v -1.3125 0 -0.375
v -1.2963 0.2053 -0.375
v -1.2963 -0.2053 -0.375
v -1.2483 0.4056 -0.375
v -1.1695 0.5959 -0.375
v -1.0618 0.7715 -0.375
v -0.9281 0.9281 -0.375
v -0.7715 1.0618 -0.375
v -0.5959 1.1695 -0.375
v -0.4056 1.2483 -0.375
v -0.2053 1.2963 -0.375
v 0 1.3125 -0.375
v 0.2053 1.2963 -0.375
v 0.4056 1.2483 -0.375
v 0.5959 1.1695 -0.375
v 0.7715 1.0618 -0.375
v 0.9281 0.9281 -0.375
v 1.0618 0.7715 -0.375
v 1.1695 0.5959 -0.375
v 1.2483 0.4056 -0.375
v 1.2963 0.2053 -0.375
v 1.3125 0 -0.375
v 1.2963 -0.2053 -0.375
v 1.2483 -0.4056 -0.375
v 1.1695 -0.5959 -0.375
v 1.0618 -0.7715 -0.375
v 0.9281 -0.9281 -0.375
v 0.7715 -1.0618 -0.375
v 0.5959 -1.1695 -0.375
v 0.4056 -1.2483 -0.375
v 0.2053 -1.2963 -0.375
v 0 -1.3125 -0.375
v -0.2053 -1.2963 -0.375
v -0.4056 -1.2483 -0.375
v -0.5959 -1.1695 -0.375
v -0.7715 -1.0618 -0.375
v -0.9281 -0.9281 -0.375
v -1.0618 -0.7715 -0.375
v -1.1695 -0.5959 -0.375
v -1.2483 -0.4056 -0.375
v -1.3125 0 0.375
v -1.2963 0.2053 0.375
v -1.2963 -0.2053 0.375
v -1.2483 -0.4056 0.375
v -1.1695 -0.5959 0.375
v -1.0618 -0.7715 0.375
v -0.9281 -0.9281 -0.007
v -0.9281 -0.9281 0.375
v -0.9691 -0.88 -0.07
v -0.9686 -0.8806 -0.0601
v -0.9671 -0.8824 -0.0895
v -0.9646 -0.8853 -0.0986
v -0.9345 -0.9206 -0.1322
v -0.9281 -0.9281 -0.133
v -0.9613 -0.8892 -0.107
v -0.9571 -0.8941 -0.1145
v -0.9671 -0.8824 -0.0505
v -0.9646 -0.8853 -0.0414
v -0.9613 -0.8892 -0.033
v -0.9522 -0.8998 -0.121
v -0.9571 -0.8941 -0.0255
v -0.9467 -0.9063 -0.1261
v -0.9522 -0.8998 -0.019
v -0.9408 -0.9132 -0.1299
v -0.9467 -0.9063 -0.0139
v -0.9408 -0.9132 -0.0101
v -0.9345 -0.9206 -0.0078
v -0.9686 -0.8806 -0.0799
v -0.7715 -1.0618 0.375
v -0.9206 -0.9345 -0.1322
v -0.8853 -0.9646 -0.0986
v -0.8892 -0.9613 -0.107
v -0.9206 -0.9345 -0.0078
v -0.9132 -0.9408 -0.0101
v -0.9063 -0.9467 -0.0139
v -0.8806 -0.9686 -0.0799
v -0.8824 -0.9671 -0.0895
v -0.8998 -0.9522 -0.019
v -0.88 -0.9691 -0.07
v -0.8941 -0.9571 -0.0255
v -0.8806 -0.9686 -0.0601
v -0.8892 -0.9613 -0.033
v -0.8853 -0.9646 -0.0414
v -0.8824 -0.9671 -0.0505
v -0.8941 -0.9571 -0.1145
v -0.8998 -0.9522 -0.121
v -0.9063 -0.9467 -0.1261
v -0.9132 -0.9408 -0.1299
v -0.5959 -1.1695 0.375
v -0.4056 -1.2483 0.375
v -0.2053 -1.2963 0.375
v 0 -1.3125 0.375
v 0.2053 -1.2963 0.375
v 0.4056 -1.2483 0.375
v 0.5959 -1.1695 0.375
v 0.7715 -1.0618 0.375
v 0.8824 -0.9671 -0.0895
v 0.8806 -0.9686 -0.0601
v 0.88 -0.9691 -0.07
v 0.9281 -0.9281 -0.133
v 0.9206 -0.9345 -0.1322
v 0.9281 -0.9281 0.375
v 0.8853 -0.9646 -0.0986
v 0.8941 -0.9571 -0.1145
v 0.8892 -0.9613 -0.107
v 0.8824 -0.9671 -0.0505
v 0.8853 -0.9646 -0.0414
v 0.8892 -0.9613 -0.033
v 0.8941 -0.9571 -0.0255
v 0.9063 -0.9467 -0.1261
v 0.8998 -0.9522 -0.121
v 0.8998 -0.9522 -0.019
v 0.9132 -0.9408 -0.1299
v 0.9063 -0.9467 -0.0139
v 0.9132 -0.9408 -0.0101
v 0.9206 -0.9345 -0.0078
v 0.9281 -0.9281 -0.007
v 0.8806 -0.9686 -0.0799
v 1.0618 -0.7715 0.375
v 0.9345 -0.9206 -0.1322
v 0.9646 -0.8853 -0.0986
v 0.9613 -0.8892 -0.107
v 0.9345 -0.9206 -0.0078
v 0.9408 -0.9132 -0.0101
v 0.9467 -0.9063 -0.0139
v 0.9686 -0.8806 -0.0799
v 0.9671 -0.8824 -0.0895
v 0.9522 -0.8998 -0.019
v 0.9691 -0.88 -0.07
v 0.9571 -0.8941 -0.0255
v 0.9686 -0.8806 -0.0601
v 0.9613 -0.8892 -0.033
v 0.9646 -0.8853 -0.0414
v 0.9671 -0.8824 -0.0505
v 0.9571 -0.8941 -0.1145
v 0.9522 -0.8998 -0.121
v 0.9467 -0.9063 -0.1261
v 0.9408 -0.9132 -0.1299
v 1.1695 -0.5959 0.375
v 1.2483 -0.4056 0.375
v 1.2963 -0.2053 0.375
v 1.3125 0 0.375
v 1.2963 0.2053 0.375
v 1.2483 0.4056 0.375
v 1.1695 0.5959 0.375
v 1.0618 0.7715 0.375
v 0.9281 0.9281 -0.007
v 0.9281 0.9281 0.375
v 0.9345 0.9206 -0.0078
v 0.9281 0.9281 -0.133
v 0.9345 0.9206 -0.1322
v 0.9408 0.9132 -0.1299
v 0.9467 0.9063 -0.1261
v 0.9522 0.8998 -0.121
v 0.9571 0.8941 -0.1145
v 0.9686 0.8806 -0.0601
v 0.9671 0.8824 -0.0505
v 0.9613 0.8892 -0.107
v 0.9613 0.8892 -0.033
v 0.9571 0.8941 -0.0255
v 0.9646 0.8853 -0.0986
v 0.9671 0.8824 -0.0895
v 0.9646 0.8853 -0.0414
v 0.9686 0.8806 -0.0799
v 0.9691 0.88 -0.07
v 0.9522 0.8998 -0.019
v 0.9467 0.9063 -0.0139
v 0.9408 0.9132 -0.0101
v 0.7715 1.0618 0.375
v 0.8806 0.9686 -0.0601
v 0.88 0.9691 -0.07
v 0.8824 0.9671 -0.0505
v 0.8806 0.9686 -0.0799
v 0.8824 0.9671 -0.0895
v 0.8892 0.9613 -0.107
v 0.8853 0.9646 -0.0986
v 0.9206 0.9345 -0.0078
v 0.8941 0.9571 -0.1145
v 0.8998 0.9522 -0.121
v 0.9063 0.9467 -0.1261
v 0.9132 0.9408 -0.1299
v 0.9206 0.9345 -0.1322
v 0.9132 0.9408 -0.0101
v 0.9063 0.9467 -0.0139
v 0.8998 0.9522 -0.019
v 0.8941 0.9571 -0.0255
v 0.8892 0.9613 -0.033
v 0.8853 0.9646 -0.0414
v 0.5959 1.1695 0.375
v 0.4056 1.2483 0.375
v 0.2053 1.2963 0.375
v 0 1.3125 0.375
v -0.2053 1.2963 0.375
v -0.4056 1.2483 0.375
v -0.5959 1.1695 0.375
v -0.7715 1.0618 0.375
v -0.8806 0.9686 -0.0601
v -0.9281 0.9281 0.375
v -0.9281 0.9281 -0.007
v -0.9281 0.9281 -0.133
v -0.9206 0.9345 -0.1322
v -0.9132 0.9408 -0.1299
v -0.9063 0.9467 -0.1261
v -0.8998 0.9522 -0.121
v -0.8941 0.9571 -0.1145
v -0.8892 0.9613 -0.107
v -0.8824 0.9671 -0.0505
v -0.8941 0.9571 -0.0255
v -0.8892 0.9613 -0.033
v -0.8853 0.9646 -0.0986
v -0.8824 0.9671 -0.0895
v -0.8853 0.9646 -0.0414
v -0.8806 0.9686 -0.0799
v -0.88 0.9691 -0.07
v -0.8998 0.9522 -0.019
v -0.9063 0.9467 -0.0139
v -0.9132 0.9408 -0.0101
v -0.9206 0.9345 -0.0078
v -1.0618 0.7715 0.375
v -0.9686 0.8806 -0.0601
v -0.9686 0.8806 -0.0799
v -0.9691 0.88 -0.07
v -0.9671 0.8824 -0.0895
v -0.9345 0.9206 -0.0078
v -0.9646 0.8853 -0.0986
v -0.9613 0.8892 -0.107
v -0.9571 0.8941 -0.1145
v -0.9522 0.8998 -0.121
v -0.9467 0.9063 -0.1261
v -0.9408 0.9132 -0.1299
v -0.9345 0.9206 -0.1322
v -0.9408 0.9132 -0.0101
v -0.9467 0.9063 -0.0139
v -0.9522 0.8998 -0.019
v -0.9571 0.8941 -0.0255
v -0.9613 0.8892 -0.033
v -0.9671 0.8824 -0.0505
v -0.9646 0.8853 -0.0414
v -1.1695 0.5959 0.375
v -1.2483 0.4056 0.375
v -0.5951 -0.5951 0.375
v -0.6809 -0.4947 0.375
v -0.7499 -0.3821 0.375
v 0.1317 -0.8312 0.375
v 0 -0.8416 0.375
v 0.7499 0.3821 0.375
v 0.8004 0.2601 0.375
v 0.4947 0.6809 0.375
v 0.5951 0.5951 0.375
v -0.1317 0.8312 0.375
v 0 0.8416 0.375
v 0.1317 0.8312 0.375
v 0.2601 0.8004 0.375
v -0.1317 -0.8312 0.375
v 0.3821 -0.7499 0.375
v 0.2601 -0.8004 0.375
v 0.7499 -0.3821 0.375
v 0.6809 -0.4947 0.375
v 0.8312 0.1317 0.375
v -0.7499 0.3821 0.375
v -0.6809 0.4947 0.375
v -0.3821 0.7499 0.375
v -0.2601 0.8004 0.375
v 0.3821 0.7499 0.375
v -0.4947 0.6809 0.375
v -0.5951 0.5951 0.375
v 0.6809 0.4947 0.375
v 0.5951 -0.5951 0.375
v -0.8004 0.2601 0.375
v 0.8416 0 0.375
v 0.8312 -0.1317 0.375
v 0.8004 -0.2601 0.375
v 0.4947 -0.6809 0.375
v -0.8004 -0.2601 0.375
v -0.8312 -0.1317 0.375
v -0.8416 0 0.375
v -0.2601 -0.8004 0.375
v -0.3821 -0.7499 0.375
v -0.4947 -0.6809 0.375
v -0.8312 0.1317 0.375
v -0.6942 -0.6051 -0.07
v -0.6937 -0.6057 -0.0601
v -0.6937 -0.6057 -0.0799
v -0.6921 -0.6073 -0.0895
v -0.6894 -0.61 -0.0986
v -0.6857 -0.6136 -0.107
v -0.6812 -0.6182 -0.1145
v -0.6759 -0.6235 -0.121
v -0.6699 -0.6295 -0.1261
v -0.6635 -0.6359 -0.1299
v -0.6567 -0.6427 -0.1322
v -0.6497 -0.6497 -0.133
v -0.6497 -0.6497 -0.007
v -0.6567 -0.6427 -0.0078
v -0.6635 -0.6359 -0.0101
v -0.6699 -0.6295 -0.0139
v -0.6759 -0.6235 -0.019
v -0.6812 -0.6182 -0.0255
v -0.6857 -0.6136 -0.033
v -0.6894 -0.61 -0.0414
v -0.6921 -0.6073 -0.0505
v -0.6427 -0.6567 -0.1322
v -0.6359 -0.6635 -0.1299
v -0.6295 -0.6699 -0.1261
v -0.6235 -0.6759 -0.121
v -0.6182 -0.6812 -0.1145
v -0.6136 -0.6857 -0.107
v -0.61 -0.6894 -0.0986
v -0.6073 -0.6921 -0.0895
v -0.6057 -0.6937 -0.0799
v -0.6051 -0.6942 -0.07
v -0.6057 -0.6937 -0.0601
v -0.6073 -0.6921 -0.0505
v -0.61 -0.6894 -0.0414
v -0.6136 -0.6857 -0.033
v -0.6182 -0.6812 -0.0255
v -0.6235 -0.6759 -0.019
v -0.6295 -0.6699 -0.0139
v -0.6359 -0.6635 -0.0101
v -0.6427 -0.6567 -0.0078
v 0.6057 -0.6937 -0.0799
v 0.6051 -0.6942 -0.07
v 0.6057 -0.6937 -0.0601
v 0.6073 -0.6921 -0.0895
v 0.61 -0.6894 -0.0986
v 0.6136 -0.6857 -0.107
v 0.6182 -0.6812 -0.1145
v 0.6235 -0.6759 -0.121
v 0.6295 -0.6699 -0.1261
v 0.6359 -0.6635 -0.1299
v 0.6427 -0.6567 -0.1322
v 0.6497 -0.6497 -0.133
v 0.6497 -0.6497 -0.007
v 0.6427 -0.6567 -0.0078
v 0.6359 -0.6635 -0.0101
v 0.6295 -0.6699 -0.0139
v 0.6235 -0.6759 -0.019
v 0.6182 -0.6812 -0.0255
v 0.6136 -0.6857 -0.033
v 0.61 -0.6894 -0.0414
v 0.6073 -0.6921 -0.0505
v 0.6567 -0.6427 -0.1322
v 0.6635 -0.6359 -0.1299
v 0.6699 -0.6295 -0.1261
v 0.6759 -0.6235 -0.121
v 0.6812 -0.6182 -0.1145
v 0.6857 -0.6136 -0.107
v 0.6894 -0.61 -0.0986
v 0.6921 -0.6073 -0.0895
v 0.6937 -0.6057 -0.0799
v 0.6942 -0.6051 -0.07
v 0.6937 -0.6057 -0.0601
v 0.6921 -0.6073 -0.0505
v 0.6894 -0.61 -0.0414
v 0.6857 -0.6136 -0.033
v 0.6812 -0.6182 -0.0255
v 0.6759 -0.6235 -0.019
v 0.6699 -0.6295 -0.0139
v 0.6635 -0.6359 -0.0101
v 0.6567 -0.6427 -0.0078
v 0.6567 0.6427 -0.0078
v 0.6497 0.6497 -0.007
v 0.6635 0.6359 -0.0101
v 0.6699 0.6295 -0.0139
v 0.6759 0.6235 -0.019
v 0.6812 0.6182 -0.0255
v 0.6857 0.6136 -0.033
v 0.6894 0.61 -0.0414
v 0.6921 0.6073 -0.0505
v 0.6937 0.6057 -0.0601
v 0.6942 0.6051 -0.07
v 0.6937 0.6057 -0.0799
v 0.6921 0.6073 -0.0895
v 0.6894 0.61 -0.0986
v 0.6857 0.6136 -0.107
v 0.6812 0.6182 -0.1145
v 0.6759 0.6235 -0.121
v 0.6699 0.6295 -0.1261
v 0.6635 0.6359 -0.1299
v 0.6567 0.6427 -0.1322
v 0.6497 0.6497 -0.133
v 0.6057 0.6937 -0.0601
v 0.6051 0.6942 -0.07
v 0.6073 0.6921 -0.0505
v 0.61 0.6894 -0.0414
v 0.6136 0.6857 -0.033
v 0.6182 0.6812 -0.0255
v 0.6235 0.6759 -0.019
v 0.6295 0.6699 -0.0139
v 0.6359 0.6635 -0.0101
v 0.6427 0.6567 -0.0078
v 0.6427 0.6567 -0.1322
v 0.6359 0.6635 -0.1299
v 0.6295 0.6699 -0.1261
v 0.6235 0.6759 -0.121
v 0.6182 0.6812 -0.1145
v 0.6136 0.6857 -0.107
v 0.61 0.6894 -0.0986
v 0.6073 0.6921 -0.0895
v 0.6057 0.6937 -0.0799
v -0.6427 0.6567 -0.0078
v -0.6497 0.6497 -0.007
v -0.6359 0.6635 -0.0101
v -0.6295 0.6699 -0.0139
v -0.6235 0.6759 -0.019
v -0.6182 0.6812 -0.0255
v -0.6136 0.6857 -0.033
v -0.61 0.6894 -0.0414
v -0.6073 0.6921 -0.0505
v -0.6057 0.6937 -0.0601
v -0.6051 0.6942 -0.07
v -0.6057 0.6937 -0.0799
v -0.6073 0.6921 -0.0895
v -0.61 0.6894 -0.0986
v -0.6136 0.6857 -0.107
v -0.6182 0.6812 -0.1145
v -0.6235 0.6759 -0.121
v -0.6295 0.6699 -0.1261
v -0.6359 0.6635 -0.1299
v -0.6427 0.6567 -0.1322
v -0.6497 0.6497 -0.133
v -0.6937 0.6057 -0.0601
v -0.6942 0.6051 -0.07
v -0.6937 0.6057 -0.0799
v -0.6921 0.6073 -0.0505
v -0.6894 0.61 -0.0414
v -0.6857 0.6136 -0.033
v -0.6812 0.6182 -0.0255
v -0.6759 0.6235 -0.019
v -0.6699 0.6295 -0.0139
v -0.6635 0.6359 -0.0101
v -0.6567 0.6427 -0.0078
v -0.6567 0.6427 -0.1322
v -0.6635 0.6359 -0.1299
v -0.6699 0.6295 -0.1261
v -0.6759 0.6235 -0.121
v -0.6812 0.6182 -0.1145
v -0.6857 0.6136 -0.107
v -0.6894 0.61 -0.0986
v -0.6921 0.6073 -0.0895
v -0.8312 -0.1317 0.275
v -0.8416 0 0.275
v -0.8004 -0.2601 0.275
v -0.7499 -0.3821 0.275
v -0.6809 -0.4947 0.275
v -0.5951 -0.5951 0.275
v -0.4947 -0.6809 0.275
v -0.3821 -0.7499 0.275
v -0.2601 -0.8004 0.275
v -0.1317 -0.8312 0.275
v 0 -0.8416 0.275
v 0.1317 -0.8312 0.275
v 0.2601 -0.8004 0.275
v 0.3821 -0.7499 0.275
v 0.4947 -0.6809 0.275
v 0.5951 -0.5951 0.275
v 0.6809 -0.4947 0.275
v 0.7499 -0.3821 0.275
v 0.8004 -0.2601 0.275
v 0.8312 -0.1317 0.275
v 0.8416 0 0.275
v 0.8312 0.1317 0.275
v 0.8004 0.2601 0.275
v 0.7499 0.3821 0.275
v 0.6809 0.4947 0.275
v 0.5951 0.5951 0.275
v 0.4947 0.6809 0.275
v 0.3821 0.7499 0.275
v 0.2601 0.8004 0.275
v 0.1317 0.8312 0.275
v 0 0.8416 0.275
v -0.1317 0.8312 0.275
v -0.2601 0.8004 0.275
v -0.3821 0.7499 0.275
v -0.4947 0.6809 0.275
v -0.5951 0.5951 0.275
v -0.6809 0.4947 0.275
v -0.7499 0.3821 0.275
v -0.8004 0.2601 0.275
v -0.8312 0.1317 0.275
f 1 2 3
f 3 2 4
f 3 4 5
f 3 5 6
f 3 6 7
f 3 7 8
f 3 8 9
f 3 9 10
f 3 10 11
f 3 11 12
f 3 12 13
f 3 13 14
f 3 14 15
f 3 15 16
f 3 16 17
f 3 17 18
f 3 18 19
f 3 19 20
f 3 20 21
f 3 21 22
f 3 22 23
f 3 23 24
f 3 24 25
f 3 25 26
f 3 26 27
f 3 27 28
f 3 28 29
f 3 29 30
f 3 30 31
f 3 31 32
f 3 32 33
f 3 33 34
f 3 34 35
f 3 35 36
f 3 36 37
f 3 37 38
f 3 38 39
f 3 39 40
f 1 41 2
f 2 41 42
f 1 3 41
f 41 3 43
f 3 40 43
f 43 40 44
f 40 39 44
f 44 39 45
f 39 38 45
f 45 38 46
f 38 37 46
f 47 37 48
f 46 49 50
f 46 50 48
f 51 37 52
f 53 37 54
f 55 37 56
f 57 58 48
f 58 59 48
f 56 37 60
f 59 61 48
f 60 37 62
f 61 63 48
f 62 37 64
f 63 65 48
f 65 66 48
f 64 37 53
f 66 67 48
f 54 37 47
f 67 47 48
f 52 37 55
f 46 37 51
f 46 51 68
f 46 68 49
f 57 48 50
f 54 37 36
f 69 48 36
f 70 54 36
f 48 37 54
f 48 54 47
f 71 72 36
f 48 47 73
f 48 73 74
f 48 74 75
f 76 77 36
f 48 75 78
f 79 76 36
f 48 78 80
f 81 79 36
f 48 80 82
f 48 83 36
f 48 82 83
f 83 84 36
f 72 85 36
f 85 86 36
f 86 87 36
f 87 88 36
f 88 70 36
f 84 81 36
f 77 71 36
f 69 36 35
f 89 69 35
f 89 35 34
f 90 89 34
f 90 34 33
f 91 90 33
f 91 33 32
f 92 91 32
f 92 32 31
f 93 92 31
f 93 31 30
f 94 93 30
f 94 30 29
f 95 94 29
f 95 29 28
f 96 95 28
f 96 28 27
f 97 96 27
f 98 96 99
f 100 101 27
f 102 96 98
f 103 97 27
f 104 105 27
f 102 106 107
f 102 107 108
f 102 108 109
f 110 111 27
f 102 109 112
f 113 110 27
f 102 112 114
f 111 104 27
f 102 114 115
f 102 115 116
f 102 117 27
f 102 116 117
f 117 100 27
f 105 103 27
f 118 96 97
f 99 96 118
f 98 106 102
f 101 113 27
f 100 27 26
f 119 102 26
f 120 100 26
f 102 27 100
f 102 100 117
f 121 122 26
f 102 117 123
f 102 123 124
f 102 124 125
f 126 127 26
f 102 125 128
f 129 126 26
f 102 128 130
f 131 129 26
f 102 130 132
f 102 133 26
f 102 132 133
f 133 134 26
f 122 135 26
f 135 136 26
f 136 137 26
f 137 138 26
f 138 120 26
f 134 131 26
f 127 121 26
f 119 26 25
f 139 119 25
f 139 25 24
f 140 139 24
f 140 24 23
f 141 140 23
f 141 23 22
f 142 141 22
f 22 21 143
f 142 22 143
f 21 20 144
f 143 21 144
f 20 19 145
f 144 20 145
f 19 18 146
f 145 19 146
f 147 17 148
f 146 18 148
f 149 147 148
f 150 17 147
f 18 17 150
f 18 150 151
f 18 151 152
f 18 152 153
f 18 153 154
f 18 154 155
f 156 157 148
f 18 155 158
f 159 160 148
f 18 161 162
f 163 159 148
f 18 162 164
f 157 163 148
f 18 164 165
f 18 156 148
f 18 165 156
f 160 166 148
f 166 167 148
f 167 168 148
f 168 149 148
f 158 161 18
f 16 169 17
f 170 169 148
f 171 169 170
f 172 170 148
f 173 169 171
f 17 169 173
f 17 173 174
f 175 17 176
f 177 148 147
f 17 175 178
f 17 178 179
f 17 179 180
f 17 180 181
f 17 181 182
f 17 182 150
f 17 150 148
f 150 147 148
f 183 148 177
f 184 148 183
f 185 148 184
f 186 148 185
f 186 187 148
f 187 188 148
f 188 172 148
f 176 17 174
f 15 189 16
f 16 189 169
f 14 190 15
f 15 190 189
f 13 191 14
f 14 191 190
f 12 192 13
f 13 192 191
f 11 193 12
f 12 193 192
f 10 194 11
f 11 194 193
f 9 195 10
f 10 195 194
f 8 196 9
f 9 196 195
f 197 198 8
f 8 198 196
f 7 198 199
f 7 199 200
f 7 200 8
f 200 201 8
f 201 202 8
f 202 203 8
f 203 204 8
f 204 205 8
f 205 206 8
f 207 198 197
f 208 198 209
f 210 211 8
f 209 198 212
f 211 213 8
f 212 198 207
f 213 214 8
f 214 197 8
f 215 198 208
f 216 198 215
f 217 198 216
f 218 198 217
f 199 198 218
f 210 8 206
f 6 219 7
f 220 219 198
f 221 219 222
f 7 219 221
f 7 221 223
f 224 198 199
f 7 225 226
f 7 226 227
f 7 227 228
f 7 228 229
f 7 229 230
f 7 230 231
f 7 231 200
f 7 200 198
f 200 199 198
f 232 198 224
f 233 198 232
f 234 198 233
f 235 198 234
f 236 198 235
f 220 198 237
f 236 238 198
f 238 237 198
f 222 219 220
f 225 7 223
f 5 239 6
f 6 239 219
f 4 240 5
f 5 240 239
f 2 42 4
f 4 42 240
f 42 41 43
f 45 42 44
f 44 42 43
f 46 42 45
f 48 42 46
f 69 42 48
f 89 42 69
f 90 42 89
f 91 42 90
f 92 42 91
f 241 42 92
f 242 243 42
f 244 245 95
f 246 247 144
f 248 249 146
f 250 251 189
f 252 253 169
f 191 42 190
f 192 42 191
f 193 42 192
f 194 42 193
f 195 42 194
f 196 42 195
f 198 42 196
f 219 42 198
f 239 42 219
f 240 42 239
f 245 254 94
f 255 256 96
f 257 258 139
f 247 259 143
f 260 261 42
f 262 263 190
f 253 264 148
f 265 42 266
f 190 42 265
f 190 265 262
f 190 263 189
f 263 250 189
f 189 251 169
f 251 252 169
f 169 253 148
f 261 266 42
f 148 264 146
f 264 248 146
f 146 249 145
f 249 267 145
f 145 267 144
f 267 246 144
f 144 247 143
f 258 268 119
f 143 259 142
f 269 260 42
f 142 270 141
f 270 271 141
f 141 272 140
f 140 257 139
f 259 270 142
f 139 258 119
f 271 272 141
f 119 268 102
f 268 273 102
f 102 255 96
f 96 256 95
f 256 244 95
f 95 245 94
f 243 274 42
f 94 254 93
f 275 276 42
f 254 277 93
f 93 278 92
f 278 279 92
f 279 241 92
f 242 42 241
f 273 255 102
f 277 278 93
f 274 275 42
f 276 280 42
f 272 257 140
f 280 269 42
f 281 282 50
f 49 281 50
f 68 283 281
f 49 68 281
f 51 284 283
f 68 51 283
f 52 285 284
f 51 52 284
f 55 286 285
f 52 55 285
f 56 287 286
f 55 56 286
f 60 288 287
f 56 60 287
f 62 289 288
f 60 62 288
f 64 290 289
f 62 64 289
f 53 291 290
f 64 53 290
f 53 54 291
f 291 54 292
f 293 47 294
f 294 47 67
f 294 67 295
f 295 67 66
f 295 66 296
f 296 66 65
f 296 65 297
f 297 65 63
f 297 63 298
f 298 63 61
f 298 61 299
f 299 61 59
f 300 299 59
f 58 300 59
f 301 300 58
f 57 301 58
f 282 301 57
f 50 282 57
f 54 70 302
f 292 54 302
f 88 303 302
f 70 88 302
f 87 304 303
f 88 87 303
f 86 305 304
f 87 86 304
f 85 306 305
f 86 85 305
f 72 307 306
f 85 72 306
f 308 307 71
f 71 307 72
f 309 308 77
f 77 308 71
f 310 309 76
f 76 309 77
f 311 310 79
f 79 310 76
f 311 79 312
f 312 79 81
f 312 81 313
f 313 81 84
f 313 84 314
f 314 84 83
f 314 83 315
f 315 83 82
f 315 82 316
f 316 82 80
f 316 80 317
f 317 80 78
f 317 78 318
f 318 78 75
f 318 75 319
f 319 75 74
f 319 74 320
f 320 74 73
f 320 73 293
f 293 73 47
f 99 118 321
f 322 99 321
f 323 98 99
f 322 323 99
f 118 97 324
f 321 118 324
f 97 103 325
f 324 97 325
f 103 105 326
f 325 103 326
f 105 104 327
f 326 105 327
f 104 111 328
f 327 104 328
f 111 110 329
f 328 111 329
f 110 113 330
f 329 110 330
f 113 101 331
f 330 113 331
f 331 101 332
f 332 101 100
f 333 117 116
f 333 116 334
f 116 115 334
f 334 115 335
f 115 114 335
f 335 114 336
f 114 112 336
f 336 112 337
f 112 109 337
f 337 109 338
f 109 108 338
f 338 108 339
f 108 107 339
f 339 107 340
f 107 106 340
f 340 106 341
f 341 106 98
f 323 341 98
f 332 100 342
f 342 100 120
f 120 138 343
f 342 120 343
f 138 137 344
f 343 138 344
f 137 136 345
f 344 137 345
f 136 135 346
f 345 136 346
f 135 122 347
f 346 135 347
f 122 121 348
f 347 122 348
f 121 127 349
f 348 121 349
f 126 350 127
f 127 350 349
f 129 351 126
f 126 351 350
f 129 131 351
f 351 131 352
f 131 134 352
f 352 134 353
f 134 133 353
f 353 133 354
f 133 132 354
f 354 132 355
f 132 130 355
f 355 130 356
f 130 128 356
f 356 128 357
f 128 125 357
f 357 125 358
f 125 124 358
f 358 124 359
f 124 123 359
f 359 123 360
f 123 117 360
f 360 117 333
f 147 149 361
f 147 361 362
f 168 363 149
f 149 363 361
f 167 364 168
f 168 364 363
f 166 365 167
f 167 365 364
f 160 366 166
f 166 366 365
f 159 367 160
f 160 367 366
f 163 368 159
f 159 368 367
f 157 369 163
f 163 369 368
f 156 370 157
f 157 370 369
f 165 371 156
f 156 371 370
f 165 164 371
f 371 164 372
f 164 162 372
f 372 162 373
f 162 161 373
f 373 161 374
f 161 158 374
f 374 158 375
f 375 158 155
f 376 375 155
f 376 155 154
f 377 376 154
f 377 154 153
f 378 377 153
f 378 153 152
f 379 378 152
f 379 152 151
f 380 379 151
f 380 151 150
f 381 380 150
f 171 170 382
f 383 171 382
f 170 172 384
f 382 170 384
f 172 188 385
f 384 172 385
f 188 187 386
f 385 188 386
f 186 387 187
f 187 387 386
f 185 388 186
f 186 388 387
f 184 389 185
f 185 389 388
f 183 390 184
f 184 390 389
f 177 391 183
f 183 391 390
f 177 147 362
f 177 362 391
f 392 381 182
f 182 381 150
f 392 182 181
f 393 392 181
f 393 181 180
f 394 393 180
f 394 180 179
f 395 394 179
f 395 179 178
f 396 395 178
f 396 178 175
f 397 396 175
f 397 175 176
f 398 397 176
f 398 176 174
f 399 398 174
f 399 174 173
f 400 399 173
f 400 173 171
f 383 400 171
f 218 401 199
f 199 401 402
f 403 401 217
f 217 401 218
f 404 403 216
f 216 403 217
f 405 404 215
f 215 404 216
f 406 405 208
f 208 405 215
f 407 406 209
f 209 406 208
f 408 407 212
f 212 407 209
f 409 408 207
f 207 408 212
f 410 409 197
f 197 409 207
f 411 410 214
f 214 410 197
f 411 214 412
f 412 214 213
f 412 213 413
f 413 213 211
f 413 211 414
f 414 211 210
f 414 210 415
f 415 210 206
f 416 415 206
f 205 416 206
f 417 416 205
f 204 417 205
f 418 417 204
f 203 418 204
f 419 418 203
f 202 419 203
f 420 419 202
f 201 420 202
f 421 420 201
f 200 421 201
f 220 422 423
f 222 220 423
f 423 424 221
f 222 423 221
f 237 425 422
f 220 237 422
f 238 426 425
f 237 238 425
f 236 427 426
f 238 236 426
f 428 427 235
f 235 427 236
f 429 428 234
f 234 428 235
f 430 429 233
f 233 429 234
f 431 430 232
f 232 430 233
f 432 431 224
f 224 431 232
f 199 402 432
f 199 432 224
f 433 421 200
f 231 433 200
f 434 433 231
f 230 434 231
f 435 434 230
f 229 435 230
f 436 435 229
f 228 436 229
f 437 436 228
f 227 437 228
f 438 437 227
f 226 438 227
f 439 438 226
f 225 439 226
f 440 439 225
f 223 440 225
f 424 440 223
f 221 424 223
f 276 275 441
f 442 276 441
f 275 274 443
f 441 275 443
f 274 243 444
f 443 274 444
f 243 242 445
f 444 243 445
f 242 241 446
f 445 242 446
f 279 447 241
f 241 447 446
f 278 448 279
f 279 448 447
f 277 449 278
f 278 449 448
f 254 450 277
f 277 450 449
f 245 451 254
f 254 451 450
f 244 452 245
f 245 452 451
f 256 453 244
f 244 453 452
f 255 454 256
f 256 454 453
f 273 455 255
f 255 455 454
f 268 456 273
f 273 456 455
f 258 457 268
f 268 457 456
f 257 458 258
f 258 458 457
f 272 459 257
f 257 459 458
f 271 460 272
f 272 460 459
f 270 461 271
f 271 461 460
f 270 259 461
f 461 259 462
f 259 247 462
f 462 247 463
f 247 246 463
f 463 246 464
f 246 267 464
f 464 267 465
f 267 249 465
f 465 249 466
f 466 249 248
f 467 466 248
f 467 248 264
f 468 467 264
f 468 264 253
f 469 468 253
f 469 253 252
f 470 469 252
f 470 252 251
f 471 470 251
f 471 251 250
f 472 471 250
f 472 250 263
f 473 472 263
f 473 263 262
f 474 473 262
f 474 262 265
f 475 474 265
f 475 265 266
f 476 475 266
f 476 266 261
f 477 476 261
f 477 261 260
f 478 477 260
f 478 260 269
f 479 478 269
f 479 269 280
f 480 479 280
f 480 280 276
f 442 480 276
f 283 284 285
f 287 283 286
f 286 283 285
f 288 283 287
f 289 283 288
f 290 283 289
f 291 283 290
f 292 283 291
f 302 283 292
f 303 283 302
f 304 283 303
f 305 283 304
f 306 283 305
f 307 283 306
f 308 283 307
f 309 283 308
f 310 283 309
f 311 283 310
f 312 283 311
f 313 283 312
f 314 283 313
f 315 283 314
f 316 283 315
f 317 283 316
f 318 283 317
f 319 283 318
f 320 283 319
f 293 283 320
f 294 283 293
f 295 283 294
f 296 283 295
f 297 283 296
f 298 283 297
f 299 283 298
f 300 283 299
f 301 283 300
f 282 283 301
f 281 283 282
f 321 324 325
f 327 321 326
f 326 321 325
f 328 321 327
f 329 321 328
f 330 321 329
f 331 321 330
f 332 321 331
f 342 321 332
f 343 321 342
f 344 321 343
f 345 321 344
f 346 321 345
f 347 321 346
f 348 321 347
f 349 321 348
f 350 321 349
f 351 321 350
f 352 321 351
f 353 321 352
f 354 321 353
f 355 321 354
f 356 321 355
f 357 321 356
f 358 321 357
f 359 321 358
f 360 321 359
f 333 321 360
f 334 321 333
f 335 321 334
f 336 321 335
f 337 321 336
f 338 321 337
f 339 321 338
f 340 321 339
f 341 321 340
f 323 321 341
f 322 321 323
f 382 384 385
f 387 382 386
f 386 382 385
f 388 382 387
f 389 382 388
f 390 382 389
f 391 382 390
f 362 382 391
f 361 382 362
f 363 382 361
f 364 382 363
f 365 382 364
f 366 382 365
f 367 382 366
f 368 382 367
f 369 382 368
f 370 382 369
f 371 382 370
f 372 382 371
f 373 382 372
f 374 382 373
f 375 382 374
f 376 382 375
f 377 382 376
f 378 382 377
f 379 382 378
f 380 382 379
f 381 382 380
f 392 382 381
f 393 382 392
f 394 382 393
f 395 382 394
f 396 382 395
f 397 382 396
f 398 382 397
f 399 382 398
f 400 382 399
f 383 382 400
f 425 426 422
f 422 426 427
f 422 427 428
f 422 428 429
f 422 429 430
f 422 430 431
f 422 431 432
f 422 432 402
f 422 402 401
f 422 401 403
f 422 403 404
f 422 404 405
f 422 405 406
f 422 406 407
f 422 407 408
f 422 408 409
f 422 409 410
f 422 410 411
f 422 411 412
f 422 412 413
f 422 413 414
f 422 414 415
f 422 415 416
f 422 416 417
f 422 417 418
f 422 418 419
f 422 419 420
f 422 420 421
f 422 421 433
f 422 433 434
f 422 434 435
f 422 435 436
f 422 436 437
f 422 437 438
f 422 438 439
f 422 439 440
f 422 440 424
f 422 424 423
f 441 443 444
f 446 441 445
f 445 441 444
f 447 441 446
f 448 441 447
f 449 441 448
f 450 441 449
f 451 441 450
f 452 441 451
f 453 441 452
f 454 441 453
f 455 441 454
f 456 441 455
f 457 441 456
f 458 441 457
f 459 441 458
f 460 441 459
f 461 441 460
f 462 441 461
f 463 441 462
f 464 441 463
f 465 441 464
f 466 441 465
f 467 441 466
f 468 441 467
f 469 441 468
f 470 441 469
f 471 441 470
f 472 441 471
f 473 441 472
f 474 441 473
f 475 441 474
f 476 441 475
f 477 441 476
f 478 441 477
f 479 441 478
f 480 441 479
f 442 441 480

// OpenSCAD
// file: mast.scad
/*
 * Antenna Rotator 16 kg-m
 * Copyright 2012 John Pritchard
 *
 * This program is free software: you can redistribute it and/or modify
 * it under the terms of the GNU General Public License as published by
 * the Free Software Foundation, either version 3 of the License, or
 * (at your option) any later version.
 *
 * This program is distributed in the hope that it will be useful,
 * but WITHOUT ANY WARRANTY; without even the implied warranty of
 * MERCHANTABILITY or FITNESS FOR A PARTICULAR PURPOSE.  See the
 * GNU General Public License for more details.
 *
 * You should have received a copy of the GNU General Public License
 * along with this program.  If not, see <http://www.gnu.org/licenses/>.
 */

/*
 * units = inches
 */


mast_bearing_height = 0.42;

/*
 * LM67048 Tapered Bearing and L44610 Cup: 1.25 ID, 1.98 OD
 */
module mast_bearing(){
	difference(){
		cylinder(r = 0.990, h = mast_bearing_height, center = true, $fn = resolution);
		cylinder(r = 0.625, h = mast_bearing_height, center = true, $fn = resolution);
	}
}

mast_block_height = 0.75;

/*
 * Turn 2" Round 6061 to (2.0-mechtol) OD
 */
module mast_block(){
	/*
	 * TODO 
	 */
	cylinder(r = (2.0-mechtol)/2, h = mast_block_height, center = true, $fn = resolution);
}
// file: head.scad
/*
 * Antenna Rotator 16 kg-m
 * Copyright 2012 John Pritchard
 *
 * This program is free software: you can redistribute it and/or modify
 * it under the terms of the GNU General Public License as published by
 * the Free Software Foundation, either version 3 of the License, or
 * (at your option) any later version.
 *
 * This program is distributed in the hope that it will be useful,
 * but WITHOUT ANY WARRANTY; without even the implied warranty of
 * MERCHANTABILITY or FITNESS FOR A PARTICULAR PURPOSE.  See the
 * GNU General Public License for more details.
 *
 * You should have received a copy of the GNU General Public License
 * along with this program.  If not, see <http://www.gnu.org/licenses/>.
 */

/*
 * units = inches
 */

head_bearing_height = 0.5625;

head_block_od = 2.625;

head_block_height = 0.75;

head_block_gearmotor_clearance = 0.1;

head_bearing_spacer_height = 1.5;

head_tube_od = 3.0;

head_tube_id = 2.625;

head_tube_height = (7.87+head_block_height-head_block_gearmotor_clearance);

head_tube_offset = -((head_tube_height/2)-((head_block_height)+(head_bearing_spacer_height/2)+(head_bearing_height)+(2*mechtol)));

head_block_support_offset = -((head_block_height/2)+(gearmotor_body_height-(2*head_block_gearmotor_clearance))+(head_block_height)+(head_bearing_spacer_height/2)+(head_bearing_height)+(2*mechtol));

head_block_mount_offset = -((head_block_height/2)+(head_bearing_spacer_height/2)+(head_bearing_height)+(2*mechtol));

head_bearing_offset = ((head_bearing_spacer_height/2)+(head_bearing_height/2)+mechtol);

head_block_shaft_offset = ((head_block_height/2)+(head_bearing_spacer_height/2)+(head_bearing_height)+(2*mechtol));

echo("head tube height",head_tube_height);
echo("head tube offset",head_tube_offset);
echo("head block support offset",head_block_support_offset);
echo("head block mount offset",head_block_mount_offset);
echo("head bearing offset",head_bearing_offset);
echo("head block shaft offset",head_block_shaft_offset);

/*
 * R24-2RS Radial Bearing: 1.5 ID, 2.625 OD, 0.5625 H
 */
module head_bearing(){
	difference(){
		cylinder(r = (2.625/2), h = head_bearing_height, center = true, $fn = resolution);
		cylinder(r = (1.5/2), h = head_bearing_height, center = true, $fn = resolution);
	}
}

/*
 * Turn 3" Round 6061 to 2.625 OD
 */
module head_block(){

	cylinder(r = head_block_od/2, h = head_block_height, center = true, $fn = resolution);
}
/*
 * Secondary (outboard) motor mount
 */
module head_block_support(){
	difference(){
		head_block();
		translate([0,0,+(head_block_height/2)-(head_block_gearmotor_clearance/2)]){
			/*
			 * gearmotor body clearance
			 */
			gearmotor_body((gearmotor_body_radius+mechtol), head_block_gearmotor_clearance);
		}
		head_block_mount_taps();
	}
}
/*
 * Primary (inboard) motor mount
 */
module head_block_mount(){
	difference(){
		head_block();
		gearmotor_mount(head_block_height);
		translate([0,0,-(head_block_height/2)+(head_block_gearmotor_clearance/2)]){
			/*
			 * gearmotor body clearance: maximize mount strength
			 */
			gearmotor_body((gearmotor_body_radius+mechtol), head_block_gearmotor_clearance);
		}
		translate([0,0,+(head_block_height/2)-0.125]){
			/*
			 * Embedded axle clearance
			 */
			cylinder(r = (1.5+(2*mechtol))/2, h = 0.25, center = true, $fn = resolution);
			/*
			 * Mount bolt head clearance 
			 * M4 ALLEN DIN 912
			 * Head Height 4 mm, 0.1575 in; Diameter 7 mm, 0.2756 in
			 *
			 * Flat Washer
			 * Diameter 9mm, 0.3543 in; Height = 0.8 mm, 0.0315 in
			 */
			fastener_m4_mount_tapped(depth = 0.25, expansion = 0.1771);
		}
		translate([0,0,+(head_block_height/2)-0.25-(0.189/2)]){
			/*
			 * Mount bolt head sink 
			 * M4 ALLEN DIN 912 Head + Flat Washer (4 + 0.8 mm)
			 */
			fastener_m4_mount_tapped(depth = 0.189, expansion = 0.1771);
		}
		head_block_mount_taps();
	}
}
/*
 * M4 taps with 10 mm depth
 * Minimal interior wall at gearmotor body clearance (diagonal)
 */
module head_block_mount_taps(depth = 0.3937){

	translate([0,0,-0.07]){

		fastener_m4_round_taps( head_block_od, depth);
	}
}
module head_block_mount_countersinks(){

	translate([0,0,-0.07]){

		fastener_m4_tube_countersinks( head_tube_od);
	}
}
/*
 * M4 taps with 8 mm depth
 * Minimal interior wall at gearmotor body clearance (diagonal)
 */
module head_block_shaft_taps(depth = 0.3149){

	fastener_m4_round_taps( head_block_od, depth);
}
module head_block_shaft_countersinks(){

    fastener_m4_tube_countersinks( head_tube_od);
}
/*
 * TR-023 Hydraulic Rod T-Seal Buna-N
 * 1.5" ID x 1.875" OD x 0.28" H
 */
module head_block_shaft_tseal(){

	translate([0,0,(head_block_height-0.28+mechtol)/2]){

		cylinder(r = 0.9375, h = 0.28, center = true, $fn = resolution);
	}
}
module head_block_shaft(){

	difference(){
		head_block();
		cylinder(r = (1.5+mechtol)/2, h = head_block_height, center = true, $fn = resolution);
		head_block_shaft_taps();
		head_block_shaft_tseal();
	}
}
/*
 * Tube 6061 3.0 OD, 2.625 ID, Wall 0.1875 in
 */
module head_tube(){
	difference(){

		translate([0,0,head_tube_offset]){
			difference(){
				cylinder(r = (head_tube_od/2), h = head_tube_height, center = true, $fn = resolution);
				cylinder(r = (head_tube_id/2), h = head_tube_height, center = true, $fn = resolution);
			}
		}

		head_tube_countersinks();
	}
}
module head_tube_countersinks(){

	translate([0,0,head_block_support_offset]){
		head_block_mount_countersinks();
	}
	translate([0,0,head_block_mount_offset]){
		head_block_mount_countersinks();
	}
	translate([0,0,head_block_shaft_offset]){
		head_block_shaft_countersinks();
	}
}
/*
 * Tube 6061 2.75 OD, 0.25 Wall turned to Head Block OD 2.625 in
 */
module head_bearing_spacer(){
	difference(){
		cylinder(r = head_block_od/2, h = head_bearing_spacer_height, center = true, $fn = resolution);
		cylinder(r = (2.25/2), h = head_bearing_spacer_height, center = true, $fn = resolution);
	}
}
/*
 * gearmotor in head -- vertical rotator
 */
module head_motor(){
	assign(offset = -((gearmotor_body_height/2)+(head_block_height-head_block_gearmotor_clearance)+(head_bearing_spacer_height/2)+(head_bearing_height)+(3*mechtol))){
		echo("gearmotor offset",offset);
		translate([0,0,offset]){
			gearmotor();
		}
	}
}
/*
 * Blocks, Bearings, and Spacer
 */
module head_internal(){

	translate([0,0,head_block_support_offset]){
		head_block_support();
	}
	translate([0,0,head_block_mount_offset]){
		head_block_mount();
	}
	translate([0,0,-head_bearing_offset]){
		head_bearing();
	}
	translate([0,0,0]){
		head_bearing_spacer();
	}
	translate([0,0,head_bearing_offset]){
		head_bearing();
	}
	translate([0,0,head_block_shaft_offset]){
		head_block_shaft();
	}
}
module head(){
	head_internal();
    % head_motor();
	head_tube();
}
// file: gearmotor.scad
/*
 * Antenna Rotator 16 kg-m
 * Copyright 2012 John Pritchard
 *
 * This program is free software: you can redistribute it and/or modify
 * it under the terms of the GNU General Public License as published by
 * the Free Software Foundation, either version 3 of the License, or
 * (at your option) any later version.
 *
 * This program is distributed in the hope that it will be useful,
 * but WITHOUT ANY WARRANTY; without even the implied warranty of
 * MERCHANTABILITY or FITNESS FOR A PARTICULAR PURPOSE.  See the
 * GNU General Public License for more details.
 *
 * You should have received a copy of the GNU General Public License
 * along with this program.  If not, see <http://www.gnu.org/licenses/>.
 */

/*
 * units = inches
 * 
 * External constants
 * 
 * resolution: 10 is low, 100 is high
 *
 * mechtol: mechanical tolerance
 */

gearmotor_body_radius = 0.8366;
gearmotor_body_height = 3.819;

/*
 * Brushless motor with planetary gearhead, 
 * drive control, position encoder, brake:
 * 24V, 2A, 500:1, 15.6 kg-m, 8 rpm;
 * http://www.aliexpress.com/store/product/explosion-proof-DC-servo-Brushless-gear-motor-micro-planetary-gearbox-gear-reducer-156kg-cm-hight-torque/506137_516569606.html
 */
module gearmotor(){
	difference(){
		union(){

			gearmotor_body();
			/*
			 * Mount plane from center
			 */
			translate([0,0,1.9095]){

				gearmotor_mount_shoulder(gearmotor_mount_shoulder_height,(gearmotor_mount_shoulder_height/2));

				gearmotor_output_shaft();
			}
			/*
			 * Electrical connector, a space filling model
			 * for the bounds [20,2.75,6] mm
			 */
			translate([0,-gearmotor_body_radius,-1.339]){
				cube(size = [0.7874,0.2166,0.2362], center = true);
			}
		}
		fastener_m4_mount_tapped(0.5,1.9095);
	}
}
/*
 * Main body volume
 */
module gearmotor_body(radius = gearmotor_body_radius, height = gearmotor_body_height){
	cylinder( r = radius, h = height, center = true, $fn = resolution);
}
/*
 * Output shaft
 * Translated for half of height, centered
 */
module gearmotor_output_shaft(length = 0.787){

	translate([0,0,(length/2)]){
		cylinder(r = 0.2362, length, center = true, $fn = resolution);
	}
}

gearmotor_mount_shoulder_radius = 0.4724;
gearmotor_mount_shoulder_height = 0.106;

/*
 * Mount shoulder
 * Translated for half of height, centered
 */
module gearmotor_mount_shoulder(height = gearmotor_mount_shoulder_height, offset = 0){

	translate([0,0,offset]){
		cylinder(r = gearmotor_mount_shoulder_radius, height, center = true, $fn = resolution);
	}
}
/*
 * Motor mounting in the mount plane: shoulder and tap holes
 */
module gearmotor_mount(depth,offset = 0){
	gearmotor_mount_shoulder(depth,offset);
	fastener_m4_mount_tapped(depth,offset);
}
// file: fasteners.scad
/*
 * Antenna Rotator 16 kg-m
 * Copyright 2012 John Pritchard
 *
 * This program is free software: you can redistribute it and/or modify
 * it under the terms of the GNU General Public License as published by
 * the Free Software Foundation, either version 3 of the License, or
 * (at your option) any later version.
 *
 * This program is distributed in the hope that it will be useful,
 * but WITHOUT ANY WARRANTY; without even the implied warranty of
 * MERCHANTABILITY or FITNESS FOR A PARTICULAR PURPOSE.  See the
 * GNU General Public License for more details.
 *
 * You should have received a copy of the GNU General Public License
 * along with this program.  If not, see <http://www.gnu.org/licenses/>.
 */

/*
 * units = inches
 */

/*
 * M4 Hole represented as the thread depth OD
 */
module fastener_m4_tapped(depth = 0.5, expansion = 0){

	cylinder(r = 0.0787+expansion, depth, center = true, $fn = resolution);
}
/*
 * 4 x M4 Holes in motor mount
 * 
 * M4 ALLEN DIN 912 Head + Flat Washer (4 + 0.8 mm): depth = 0.189, expansion = 0.1771
 * 
 * M4 ALLEN DIN 912
 * Head Height 4 mm, 0.1575 in; Diameter 7 mm, 0.2756 in
 *
 * Flat Washer
 * Diameter 9mm, 0.3543 in; Height = 0.8 mm, 0.0315 in: depth = 0.25, expansion = 0.1771
 */
module fastener_m4_mount_tapped(depth = 0.5, offset = 0, expansion = 0){

	for (theta = [0 : 90: 300] ){
		/*
		 * translate to the mount plane and hole center
		 * for a representative space.
		 */
		translate([0.6693*sin(theta),0.6693*cos(theta),offset]){

			fastener_m4_tapped(depth,expansion);
		}
	}
}
/*
 * M4 Tap Hole ID 3.2 mm; 0.126 in; IR = 0.063 in
 */
module fastener_m4_tap(depth){

	cylinder(r = 0.063, h = depth, center = true, $fn = resolution);
	/*
	 * Cube test of minimal wall dimension
	 * 
	 * If this passes with no intersections, then the volume is safe.  
	 * A reasonable depth (min 8 mm) is always much greater than the 
	 * radius (nom 3.2 mm), providing some initial information about
	 * the interior wall dimensions.
	 * 
	 * The ideal version of this would be a torus centered on the 
	 * interior edge of the cylinder, with the plane of the extent of
	 * the depth of the torus, and the cylinder of the extent of the 
	 * radius of the torus.
	 * 
	cube(size = depth, center = true, $fn = 40);
	 */
}
/*
 * 4 x M4 Tap Holes with Depth on Round OD
 */
module fastener_m4_round_taps(od, depth){

	assign(radius = (od/2)-(depth/2)){

		for (rot = [45: 90: 360]){
	
			translate([(radius*sin(rot)),(radius*cos(rot)),0]){

				rotate([0,90,rot]){

					fastener_m4_tap(depth);
				}
			}
		}
	}
}

/*
 * M4 Counter Sunk Head
 * 
 * Centered in wall with indent.
 * 
 * Indent is not a mechanical figure, but is employed for
 * positive curve intersections in tube walls.  Mechanically
 * the top of the countersink triangle is on the lowest sides
 * (the saddle) of the intersection of the walled tube and
 * the "triangular" countersink cylinder.
 */
module fastener_m4_countersink(wall = 0.1875, indent = 0.1, debug = false){

	del = (wall-0.0976);
    ctr = (del/2);

	union(){
		translate([0,0,+((indent/2)+(0.0976/2)+ctr)]){

			cylinder( r = (0.3508/2), h = indent, center = true, $fn = resolution);
		}
		translate([0,0,ctr]){
			cylinder( r1 = (0.1575/2), r2 = (0.3508/2), h = 0.0976, center = true, $fn = resolution);
		}
		translate([0,0,(ctr-(0.0976/2)-(del/2))]){

			cylinder( r = (0.1575/2), h = (del+indent), center = true, $fn = resolution);
		}
	}
	if (debug){
		translate([-(wall),0,-(wall/2)]){

			cube( size = [(2*wall),(2*wall),wall], center = false);
		}
	}
}
/*
 * 4 x M4 Counter Sunk Heads on Tube OD
 */
module fastener_m4_tube_countersinks(od = 3.0, wall = 0.1875){

	assign(radius = ((od/2)-0.09375)){

		_fastener_m4_tube_countersinks_F_(wall,radius,45);
		_fastener_m4_tube_countersinks_R_(wall,radius,135);
		_fastener_m4_tube_countersinks_F_(wall,radius,225);
		_fastener_m4_tube_countersinks_R_(wall,radius,315);
	}
}
module _fastener_m4_tube_countersinks_F_(wall, radius, rot){
	translate([(radius*sin(rot)),(radius*cos(rot)),0]){
		rotate([0,90,rot]){
			fastener_m4_countersink(wall);
		}
	}
}
module _fastener_m4_tube_countersinks_R_(wall, radius, rot){
	translate([(radius*sin(rot)),(radius*cos(rot)),0]){
		rotate([0,-90,rot]){
			fastener_m4_countersink(wall);
		}
	}
}
// file: constants.scad
/*
 * Antenna Rotator 16 kg-m
 * Copyright 2012 John Pritchard
 *
 * This program is free software: you can redistribute it and/or modify
 * it under the terms of the GNU General Public License as published by
 * the Free Software Foundation, either version 3 of the License, or
 * (at your option) any later version.
 *
 * This program is distributed in the hope that it will be useful,
 * but WITHOUT ANY WARRANTY; without even the implied warranty of
 * MERCHANTABILITY or FITNESS FOR A PARTICULAR PURPOSE.  See the
 * GNU General Public License for more details.
 *
 * You should have received a copy of the GNU General Public License
 * along with this program.  If not, see <http://www.gnu.org/licenses/>.
 */

/*
 * units = inches
 */

/*
 * model resolution: 10 is low, 100 is high
 */
resolution = 40;
/*
 * mechanical tolerance, separation of fit:
 * applied to diameter of cylinder, side of cube
 */
mechtol = 0.005;
// main file
/*
 * Antenna Rotator 16 kg-m
 * Copyright 2012 John Pritchard
 *
 * This program is free software: you can redistribute it and/or modify
 * it under the terms of the GNU General Public License as published by
 * the Free Software Foundation, either version 3 of the License, or
 * (at your option) any later version.
 *
 * This program is distributed in the hope that it will be useful,
 * but WITHOUT ANY WARRANTY; without even the implied warranty of
 * MERCHANTABILITY or FITNESS FOR A PARTICULAR PURPOSE.  See the
 * GNU General Public License for more details.
 *
 * You should have received a copy of the GNU General Public License
 * along with this program.  If not, see <http://www.gnu.org/licenses/>.
 */


/*
 * employ "include", not "use", so the resolution and 
 * tolerance constants are shared
 */
include <constants.scad>;
include <fasteners.scad>;
include <gearmotor.scad>;
include <head.scad>;
include <mast.scad>;


head_block_support();
